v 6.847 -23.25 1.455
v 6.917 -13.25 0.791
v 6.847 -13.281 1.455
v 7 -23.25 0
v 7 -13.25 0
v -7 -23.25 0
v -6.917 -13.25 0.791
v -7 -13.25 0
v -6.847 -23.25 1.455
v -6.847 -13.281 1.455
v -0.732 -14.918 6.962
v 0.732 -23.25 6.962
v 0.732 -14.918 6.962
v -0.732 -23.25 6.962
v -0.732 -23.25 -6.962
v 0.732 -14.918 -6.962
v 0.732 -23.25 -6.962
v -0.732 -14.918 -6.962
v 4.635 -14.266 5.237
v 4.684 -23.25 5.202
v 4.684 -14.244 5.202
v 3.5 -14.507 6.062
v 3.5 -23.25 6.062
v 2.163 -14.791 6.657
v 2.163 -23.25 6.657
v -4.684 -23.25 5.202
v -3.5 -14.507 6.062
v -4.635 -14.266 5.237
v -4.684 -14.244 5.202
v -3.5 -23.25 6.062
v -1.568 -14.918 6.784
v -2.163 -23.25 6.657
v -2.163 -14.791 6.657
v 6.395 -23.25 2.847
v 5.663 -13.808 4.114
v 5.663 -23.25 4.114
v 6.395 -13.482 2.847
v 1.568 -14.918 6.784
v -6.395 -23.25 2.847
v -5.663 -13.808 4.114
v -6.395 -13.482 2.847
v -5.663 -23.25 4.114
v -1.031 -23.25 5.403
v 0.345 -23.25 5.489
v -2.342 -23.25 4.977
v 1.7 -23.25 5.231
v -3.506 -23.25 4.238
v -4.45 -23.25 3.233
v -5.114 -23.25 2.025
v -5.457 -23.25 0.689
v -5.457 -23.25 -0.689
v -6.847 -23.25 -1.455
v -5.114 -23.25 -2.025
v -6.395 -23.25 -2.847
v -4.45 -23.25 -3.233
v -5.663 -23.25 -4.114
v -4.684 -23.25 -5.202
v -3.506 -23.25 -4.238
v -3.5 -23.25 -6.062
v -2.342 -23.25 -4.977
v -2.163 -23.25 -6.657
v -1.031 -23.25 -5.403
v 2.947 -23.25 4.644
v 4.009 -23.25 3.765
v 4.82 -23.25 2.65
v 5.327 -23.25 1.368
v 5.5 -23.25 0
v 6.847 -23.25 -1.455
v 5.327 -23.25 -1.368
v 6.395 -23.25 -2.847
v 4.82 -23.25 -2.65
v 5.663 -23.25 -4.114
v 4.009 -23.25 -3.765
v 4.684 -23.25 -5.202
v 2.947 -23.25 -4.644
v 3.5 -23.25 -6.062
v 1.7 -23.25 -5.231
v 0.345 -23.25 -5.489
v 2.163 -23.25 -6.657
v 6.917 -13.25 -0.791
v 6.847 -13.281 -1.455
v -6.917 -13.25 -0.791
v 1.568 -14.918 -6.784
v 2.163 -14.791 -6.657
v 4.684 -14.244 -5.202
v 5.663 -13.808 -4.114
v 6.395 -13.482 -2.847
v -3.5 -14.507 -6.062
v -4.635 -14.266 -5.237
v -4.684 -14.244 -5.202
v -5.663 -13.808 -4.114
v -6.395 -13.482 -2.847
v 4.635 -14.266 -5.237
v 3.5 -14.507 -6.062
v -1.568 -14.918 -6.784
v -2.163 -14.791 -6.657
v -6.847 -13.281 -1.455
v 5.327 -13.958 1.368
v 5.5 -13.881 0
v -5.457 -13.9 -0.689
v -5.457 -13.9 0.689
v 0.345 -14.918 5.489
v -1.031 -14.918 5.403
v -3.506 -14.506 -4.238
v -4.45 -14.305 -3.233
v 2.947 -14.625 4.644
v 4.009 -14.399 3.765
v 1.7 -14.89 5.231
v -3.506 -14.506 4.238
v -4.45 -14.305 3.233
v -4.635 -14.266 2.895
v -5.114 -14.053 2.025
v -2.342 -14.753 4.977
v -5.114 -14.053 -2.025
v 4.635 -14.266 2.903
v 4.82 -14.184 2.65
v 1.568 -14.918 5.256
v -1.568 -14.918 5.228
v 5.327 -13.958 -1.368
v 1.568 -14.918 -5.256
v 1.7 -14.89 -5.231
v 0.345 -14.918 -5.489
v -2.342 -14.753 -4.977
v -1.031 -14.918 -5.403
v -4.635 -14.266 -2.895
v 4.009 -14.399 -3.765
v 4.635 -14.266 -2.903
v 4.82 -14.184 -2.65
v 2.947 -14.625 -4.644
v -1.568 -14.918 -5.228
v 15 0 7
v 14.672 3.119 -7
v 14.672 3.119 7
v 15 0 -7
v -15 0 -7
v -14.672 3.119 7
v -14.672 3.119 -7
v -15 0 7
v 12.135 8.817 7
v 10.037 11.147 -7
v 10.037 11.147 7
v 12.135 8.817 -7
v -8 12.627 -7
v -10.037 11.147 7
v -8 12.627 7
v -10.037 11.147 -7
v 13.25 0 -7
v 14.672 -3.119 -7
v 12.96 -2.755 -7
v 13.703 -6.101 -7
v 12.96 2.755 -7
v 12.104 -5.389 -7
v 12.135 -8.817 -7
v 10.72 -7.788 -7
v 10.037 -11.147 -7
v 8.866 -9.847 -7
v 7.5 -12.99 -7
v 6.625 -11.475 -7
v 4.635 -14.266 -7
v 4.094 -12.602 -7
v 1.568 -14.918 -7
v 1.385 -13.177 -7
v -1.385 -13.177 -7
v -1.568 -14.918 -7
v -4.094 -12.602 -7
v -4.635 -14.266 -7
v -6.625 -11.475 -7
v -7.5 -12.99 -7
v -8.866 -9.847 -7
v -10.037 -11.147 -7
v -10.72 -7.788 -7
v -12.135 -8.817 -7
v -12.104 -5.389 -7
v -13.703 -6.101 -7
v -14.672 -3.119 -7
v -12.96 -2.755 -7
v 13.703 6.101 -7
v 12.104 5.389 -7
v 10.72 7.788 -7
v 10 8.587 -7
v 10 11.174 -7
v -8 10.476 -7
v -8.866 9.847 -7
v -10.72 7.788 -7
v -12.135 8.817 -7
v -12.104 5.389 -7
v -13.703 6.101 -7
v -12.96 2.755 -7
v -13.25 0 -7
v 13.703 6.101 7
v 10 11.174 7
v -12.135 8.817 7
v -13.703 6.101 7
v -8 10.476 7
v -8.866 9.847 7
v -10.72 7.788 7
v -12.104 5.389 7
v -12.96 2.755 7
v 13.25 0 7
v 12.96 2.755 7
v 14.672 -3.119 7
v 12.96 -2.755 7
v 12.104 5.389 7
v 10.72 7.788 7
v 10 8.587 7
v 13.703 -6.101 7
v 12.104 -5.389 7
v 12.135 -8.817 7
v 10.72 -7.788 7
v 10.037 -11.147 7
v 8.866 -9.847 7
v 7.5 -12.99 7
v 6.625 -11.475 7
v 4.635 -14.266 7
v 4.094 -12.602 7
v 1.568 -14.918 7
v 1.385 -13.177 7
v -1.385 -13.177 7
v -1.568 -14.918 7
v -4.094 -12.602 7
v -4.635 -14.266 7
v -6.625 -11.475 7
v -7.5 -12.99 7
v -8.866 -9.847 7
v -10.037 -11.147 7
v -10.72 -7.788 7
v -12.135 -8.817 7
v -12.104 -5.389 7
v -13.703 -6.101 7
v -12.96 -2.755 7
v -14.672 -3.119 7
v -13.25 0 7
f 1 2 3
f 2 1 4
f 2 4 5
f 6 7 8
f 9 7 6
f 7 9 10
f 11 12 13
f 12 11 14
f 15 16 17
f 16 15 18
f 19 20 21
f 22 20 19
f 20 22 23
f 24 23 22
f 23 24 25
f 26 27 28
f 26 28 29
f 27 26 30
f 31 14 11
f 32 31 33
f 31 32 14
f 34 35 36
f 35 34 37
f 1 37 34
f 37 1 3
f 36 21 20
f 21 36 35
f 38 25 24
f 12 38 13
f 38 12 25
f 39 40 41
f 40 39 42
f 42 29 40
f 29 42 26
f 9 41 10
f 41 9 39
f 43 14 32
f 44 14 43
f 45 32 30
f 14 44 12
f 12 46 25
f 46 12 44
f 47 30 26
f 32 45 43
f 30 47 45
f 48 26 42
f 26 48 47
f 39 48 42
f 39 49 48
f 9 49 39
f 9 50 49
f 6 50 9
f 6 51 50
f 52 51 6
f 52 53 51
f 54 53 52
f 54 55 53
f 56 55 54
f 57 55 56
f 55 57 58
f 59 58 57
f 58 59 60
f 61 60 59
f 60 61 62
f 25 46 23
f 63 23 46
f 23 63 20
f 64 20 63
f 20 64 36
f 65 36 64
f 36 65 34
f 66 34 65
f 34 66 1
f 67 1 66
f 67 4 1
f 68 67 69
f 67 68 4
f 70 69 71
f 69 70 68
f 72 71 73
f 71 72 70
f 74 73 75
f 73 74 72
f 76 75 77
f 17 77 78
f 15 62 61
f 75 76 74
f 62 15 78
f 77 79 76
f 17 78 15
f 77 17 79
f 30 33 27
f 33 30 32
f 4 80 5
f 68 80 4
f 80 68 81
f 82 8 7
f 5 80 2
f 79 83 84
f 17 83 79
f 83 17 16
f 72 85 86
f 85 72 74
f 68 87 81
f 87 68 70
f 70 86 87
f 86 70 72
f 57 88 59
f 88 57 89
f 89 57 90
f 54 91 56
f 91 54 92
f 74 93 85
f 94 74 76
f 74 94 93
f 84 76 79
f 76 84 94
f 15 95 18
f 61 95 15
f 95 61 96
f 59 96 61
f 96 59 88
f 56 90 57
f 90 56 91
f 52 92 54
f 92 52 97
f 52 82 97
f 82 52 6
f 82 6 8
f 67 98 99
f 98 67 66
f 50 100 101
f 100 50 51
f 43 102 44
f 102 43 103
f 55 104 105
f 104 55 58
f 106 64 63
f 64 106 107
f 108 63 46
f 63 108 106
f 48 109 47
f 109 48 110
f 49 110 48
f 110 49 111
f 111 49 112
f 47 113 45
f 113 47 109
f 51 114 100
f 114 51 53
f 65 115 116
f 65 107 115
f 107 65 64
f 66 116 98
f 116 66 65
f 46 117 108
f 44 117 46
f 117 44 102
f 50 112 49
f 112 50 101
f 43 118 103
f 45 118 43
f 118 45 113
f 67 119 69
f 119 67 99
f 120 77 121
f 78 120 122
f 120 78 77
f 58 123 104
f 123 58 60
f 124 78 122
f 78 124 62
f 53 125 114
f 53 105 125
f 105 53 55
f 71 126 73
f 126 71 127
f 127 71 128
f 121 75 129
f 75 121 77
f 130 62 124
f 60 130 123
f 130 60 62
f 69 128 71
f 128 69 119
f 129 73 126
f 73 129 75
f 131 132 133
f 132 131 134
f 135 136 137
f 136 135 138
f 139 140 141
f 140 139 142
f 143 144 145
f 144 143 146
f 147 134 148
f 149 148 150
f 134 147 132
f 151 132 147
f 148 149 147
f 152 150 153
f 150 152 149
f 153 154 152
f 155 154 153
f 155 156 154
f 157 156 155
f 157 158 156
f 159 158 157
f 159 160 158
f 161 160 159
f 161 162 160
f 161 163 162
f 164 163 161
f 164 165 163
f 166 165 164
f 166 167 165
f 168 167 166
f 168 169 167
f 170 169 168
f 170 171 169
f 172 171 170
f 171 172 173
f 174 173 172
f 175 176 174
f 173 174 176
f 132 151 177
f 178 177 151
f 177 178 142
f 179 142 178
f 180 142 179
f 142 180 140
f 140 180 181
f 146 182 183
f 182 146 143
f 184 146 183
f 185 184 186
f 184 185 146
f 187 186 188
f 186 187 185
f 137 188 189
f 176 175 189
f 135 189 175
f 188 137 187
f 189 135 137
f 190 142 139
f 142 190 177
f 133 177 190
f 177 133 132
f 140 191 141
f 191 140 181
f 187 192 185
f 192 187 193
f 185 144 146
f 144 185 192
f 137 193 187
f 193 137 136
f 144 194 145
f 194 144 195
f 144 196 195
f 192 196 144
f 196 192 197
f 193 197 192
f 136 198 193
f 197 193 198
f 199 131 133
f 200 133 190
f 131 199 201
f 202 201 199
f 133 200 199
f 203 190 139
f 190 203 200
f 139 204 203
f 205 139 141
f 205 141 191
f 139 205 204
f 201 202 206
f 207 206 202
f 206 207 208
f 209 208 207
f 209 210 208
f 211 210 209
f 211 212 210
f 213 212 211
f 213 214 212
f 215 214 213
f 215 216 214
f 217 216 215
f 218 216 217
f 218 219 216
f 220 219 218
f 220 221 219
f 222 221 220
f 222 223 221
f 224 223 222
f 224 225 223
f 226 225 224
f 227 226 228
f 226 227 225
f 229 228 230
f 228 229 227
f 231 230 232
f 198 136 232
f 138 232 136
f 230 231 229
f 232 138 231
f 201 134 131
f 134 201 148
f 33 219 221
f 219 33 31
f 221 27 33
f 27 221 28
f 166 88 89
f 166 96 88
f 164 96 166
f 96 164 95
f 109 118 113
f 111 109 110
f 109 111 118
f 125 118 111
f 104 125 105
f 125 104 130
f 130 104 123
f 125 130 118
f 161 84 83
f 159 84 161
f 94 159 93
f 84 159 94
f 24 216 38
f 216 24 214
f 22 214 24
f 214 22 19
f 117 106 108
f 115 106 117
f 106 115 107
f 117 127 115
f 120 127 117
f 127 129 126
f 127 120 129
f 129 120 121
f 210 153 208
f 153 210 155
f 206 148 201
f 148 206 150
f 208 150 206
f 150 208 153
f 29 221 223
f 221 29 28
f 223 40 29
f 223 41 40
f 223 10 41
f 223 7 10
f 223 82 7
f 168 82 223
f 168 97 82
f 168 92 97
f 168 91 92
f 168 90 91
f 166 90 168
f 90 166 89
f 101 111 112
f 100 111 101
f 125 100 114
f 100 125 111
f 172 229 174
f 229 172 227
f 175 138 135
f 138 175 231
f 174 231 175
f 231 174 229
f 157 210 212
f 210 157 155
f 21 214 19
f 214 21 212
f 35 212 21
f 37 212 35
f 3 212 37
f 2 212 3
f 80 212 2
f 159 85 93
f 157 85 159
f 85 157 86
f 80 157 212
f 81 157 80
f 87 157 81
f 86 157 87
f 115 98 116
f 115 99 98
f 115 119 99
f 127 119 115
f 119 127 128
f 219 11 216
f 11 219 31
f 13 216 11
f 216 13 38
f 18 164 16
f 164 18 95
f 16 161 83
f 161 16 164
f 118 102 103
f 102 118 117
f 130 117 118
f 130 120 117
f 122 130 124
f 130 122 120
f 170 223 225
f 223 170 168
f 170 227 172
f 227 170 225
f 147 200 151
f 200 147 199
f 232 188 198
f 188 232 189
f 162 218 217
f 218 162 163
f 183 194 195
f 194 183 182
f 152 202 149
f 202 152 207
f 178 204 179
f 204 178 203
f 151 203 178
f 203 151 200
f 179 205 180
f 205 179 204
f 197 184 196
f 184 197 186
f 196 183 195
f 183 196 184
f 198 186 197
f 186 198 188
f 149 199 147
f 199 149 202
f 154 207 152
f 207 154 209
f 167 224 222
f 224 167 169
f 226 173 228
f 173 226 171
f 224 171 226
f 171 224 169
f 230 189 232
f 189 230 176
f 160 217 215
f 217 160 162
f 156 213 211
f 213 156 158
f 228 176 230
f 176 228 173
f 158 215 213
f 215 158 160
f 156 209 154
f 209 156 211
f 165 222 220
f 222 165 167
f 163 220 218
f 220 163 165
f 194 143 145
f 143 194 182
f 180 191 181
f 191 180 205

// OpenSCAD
module ring() {
    difference() {
        cylinder(h=10, r=7, $fn=30, center = true);
        cylinder(h=10, r=5.5, $fn=25, center = true);
    }
}


difference() {
    difference() {
        cylinder(r=15, h=14, center=true);
        cylinder(r=13.25, h=14, center=true);
    }
    
    translate([-8, 0, -7]) { cube([18, 33, 14]); }
}

translate([0, -18.25, 0]) { 
    rotate([90, 0, 0]) { ring(); }
}
